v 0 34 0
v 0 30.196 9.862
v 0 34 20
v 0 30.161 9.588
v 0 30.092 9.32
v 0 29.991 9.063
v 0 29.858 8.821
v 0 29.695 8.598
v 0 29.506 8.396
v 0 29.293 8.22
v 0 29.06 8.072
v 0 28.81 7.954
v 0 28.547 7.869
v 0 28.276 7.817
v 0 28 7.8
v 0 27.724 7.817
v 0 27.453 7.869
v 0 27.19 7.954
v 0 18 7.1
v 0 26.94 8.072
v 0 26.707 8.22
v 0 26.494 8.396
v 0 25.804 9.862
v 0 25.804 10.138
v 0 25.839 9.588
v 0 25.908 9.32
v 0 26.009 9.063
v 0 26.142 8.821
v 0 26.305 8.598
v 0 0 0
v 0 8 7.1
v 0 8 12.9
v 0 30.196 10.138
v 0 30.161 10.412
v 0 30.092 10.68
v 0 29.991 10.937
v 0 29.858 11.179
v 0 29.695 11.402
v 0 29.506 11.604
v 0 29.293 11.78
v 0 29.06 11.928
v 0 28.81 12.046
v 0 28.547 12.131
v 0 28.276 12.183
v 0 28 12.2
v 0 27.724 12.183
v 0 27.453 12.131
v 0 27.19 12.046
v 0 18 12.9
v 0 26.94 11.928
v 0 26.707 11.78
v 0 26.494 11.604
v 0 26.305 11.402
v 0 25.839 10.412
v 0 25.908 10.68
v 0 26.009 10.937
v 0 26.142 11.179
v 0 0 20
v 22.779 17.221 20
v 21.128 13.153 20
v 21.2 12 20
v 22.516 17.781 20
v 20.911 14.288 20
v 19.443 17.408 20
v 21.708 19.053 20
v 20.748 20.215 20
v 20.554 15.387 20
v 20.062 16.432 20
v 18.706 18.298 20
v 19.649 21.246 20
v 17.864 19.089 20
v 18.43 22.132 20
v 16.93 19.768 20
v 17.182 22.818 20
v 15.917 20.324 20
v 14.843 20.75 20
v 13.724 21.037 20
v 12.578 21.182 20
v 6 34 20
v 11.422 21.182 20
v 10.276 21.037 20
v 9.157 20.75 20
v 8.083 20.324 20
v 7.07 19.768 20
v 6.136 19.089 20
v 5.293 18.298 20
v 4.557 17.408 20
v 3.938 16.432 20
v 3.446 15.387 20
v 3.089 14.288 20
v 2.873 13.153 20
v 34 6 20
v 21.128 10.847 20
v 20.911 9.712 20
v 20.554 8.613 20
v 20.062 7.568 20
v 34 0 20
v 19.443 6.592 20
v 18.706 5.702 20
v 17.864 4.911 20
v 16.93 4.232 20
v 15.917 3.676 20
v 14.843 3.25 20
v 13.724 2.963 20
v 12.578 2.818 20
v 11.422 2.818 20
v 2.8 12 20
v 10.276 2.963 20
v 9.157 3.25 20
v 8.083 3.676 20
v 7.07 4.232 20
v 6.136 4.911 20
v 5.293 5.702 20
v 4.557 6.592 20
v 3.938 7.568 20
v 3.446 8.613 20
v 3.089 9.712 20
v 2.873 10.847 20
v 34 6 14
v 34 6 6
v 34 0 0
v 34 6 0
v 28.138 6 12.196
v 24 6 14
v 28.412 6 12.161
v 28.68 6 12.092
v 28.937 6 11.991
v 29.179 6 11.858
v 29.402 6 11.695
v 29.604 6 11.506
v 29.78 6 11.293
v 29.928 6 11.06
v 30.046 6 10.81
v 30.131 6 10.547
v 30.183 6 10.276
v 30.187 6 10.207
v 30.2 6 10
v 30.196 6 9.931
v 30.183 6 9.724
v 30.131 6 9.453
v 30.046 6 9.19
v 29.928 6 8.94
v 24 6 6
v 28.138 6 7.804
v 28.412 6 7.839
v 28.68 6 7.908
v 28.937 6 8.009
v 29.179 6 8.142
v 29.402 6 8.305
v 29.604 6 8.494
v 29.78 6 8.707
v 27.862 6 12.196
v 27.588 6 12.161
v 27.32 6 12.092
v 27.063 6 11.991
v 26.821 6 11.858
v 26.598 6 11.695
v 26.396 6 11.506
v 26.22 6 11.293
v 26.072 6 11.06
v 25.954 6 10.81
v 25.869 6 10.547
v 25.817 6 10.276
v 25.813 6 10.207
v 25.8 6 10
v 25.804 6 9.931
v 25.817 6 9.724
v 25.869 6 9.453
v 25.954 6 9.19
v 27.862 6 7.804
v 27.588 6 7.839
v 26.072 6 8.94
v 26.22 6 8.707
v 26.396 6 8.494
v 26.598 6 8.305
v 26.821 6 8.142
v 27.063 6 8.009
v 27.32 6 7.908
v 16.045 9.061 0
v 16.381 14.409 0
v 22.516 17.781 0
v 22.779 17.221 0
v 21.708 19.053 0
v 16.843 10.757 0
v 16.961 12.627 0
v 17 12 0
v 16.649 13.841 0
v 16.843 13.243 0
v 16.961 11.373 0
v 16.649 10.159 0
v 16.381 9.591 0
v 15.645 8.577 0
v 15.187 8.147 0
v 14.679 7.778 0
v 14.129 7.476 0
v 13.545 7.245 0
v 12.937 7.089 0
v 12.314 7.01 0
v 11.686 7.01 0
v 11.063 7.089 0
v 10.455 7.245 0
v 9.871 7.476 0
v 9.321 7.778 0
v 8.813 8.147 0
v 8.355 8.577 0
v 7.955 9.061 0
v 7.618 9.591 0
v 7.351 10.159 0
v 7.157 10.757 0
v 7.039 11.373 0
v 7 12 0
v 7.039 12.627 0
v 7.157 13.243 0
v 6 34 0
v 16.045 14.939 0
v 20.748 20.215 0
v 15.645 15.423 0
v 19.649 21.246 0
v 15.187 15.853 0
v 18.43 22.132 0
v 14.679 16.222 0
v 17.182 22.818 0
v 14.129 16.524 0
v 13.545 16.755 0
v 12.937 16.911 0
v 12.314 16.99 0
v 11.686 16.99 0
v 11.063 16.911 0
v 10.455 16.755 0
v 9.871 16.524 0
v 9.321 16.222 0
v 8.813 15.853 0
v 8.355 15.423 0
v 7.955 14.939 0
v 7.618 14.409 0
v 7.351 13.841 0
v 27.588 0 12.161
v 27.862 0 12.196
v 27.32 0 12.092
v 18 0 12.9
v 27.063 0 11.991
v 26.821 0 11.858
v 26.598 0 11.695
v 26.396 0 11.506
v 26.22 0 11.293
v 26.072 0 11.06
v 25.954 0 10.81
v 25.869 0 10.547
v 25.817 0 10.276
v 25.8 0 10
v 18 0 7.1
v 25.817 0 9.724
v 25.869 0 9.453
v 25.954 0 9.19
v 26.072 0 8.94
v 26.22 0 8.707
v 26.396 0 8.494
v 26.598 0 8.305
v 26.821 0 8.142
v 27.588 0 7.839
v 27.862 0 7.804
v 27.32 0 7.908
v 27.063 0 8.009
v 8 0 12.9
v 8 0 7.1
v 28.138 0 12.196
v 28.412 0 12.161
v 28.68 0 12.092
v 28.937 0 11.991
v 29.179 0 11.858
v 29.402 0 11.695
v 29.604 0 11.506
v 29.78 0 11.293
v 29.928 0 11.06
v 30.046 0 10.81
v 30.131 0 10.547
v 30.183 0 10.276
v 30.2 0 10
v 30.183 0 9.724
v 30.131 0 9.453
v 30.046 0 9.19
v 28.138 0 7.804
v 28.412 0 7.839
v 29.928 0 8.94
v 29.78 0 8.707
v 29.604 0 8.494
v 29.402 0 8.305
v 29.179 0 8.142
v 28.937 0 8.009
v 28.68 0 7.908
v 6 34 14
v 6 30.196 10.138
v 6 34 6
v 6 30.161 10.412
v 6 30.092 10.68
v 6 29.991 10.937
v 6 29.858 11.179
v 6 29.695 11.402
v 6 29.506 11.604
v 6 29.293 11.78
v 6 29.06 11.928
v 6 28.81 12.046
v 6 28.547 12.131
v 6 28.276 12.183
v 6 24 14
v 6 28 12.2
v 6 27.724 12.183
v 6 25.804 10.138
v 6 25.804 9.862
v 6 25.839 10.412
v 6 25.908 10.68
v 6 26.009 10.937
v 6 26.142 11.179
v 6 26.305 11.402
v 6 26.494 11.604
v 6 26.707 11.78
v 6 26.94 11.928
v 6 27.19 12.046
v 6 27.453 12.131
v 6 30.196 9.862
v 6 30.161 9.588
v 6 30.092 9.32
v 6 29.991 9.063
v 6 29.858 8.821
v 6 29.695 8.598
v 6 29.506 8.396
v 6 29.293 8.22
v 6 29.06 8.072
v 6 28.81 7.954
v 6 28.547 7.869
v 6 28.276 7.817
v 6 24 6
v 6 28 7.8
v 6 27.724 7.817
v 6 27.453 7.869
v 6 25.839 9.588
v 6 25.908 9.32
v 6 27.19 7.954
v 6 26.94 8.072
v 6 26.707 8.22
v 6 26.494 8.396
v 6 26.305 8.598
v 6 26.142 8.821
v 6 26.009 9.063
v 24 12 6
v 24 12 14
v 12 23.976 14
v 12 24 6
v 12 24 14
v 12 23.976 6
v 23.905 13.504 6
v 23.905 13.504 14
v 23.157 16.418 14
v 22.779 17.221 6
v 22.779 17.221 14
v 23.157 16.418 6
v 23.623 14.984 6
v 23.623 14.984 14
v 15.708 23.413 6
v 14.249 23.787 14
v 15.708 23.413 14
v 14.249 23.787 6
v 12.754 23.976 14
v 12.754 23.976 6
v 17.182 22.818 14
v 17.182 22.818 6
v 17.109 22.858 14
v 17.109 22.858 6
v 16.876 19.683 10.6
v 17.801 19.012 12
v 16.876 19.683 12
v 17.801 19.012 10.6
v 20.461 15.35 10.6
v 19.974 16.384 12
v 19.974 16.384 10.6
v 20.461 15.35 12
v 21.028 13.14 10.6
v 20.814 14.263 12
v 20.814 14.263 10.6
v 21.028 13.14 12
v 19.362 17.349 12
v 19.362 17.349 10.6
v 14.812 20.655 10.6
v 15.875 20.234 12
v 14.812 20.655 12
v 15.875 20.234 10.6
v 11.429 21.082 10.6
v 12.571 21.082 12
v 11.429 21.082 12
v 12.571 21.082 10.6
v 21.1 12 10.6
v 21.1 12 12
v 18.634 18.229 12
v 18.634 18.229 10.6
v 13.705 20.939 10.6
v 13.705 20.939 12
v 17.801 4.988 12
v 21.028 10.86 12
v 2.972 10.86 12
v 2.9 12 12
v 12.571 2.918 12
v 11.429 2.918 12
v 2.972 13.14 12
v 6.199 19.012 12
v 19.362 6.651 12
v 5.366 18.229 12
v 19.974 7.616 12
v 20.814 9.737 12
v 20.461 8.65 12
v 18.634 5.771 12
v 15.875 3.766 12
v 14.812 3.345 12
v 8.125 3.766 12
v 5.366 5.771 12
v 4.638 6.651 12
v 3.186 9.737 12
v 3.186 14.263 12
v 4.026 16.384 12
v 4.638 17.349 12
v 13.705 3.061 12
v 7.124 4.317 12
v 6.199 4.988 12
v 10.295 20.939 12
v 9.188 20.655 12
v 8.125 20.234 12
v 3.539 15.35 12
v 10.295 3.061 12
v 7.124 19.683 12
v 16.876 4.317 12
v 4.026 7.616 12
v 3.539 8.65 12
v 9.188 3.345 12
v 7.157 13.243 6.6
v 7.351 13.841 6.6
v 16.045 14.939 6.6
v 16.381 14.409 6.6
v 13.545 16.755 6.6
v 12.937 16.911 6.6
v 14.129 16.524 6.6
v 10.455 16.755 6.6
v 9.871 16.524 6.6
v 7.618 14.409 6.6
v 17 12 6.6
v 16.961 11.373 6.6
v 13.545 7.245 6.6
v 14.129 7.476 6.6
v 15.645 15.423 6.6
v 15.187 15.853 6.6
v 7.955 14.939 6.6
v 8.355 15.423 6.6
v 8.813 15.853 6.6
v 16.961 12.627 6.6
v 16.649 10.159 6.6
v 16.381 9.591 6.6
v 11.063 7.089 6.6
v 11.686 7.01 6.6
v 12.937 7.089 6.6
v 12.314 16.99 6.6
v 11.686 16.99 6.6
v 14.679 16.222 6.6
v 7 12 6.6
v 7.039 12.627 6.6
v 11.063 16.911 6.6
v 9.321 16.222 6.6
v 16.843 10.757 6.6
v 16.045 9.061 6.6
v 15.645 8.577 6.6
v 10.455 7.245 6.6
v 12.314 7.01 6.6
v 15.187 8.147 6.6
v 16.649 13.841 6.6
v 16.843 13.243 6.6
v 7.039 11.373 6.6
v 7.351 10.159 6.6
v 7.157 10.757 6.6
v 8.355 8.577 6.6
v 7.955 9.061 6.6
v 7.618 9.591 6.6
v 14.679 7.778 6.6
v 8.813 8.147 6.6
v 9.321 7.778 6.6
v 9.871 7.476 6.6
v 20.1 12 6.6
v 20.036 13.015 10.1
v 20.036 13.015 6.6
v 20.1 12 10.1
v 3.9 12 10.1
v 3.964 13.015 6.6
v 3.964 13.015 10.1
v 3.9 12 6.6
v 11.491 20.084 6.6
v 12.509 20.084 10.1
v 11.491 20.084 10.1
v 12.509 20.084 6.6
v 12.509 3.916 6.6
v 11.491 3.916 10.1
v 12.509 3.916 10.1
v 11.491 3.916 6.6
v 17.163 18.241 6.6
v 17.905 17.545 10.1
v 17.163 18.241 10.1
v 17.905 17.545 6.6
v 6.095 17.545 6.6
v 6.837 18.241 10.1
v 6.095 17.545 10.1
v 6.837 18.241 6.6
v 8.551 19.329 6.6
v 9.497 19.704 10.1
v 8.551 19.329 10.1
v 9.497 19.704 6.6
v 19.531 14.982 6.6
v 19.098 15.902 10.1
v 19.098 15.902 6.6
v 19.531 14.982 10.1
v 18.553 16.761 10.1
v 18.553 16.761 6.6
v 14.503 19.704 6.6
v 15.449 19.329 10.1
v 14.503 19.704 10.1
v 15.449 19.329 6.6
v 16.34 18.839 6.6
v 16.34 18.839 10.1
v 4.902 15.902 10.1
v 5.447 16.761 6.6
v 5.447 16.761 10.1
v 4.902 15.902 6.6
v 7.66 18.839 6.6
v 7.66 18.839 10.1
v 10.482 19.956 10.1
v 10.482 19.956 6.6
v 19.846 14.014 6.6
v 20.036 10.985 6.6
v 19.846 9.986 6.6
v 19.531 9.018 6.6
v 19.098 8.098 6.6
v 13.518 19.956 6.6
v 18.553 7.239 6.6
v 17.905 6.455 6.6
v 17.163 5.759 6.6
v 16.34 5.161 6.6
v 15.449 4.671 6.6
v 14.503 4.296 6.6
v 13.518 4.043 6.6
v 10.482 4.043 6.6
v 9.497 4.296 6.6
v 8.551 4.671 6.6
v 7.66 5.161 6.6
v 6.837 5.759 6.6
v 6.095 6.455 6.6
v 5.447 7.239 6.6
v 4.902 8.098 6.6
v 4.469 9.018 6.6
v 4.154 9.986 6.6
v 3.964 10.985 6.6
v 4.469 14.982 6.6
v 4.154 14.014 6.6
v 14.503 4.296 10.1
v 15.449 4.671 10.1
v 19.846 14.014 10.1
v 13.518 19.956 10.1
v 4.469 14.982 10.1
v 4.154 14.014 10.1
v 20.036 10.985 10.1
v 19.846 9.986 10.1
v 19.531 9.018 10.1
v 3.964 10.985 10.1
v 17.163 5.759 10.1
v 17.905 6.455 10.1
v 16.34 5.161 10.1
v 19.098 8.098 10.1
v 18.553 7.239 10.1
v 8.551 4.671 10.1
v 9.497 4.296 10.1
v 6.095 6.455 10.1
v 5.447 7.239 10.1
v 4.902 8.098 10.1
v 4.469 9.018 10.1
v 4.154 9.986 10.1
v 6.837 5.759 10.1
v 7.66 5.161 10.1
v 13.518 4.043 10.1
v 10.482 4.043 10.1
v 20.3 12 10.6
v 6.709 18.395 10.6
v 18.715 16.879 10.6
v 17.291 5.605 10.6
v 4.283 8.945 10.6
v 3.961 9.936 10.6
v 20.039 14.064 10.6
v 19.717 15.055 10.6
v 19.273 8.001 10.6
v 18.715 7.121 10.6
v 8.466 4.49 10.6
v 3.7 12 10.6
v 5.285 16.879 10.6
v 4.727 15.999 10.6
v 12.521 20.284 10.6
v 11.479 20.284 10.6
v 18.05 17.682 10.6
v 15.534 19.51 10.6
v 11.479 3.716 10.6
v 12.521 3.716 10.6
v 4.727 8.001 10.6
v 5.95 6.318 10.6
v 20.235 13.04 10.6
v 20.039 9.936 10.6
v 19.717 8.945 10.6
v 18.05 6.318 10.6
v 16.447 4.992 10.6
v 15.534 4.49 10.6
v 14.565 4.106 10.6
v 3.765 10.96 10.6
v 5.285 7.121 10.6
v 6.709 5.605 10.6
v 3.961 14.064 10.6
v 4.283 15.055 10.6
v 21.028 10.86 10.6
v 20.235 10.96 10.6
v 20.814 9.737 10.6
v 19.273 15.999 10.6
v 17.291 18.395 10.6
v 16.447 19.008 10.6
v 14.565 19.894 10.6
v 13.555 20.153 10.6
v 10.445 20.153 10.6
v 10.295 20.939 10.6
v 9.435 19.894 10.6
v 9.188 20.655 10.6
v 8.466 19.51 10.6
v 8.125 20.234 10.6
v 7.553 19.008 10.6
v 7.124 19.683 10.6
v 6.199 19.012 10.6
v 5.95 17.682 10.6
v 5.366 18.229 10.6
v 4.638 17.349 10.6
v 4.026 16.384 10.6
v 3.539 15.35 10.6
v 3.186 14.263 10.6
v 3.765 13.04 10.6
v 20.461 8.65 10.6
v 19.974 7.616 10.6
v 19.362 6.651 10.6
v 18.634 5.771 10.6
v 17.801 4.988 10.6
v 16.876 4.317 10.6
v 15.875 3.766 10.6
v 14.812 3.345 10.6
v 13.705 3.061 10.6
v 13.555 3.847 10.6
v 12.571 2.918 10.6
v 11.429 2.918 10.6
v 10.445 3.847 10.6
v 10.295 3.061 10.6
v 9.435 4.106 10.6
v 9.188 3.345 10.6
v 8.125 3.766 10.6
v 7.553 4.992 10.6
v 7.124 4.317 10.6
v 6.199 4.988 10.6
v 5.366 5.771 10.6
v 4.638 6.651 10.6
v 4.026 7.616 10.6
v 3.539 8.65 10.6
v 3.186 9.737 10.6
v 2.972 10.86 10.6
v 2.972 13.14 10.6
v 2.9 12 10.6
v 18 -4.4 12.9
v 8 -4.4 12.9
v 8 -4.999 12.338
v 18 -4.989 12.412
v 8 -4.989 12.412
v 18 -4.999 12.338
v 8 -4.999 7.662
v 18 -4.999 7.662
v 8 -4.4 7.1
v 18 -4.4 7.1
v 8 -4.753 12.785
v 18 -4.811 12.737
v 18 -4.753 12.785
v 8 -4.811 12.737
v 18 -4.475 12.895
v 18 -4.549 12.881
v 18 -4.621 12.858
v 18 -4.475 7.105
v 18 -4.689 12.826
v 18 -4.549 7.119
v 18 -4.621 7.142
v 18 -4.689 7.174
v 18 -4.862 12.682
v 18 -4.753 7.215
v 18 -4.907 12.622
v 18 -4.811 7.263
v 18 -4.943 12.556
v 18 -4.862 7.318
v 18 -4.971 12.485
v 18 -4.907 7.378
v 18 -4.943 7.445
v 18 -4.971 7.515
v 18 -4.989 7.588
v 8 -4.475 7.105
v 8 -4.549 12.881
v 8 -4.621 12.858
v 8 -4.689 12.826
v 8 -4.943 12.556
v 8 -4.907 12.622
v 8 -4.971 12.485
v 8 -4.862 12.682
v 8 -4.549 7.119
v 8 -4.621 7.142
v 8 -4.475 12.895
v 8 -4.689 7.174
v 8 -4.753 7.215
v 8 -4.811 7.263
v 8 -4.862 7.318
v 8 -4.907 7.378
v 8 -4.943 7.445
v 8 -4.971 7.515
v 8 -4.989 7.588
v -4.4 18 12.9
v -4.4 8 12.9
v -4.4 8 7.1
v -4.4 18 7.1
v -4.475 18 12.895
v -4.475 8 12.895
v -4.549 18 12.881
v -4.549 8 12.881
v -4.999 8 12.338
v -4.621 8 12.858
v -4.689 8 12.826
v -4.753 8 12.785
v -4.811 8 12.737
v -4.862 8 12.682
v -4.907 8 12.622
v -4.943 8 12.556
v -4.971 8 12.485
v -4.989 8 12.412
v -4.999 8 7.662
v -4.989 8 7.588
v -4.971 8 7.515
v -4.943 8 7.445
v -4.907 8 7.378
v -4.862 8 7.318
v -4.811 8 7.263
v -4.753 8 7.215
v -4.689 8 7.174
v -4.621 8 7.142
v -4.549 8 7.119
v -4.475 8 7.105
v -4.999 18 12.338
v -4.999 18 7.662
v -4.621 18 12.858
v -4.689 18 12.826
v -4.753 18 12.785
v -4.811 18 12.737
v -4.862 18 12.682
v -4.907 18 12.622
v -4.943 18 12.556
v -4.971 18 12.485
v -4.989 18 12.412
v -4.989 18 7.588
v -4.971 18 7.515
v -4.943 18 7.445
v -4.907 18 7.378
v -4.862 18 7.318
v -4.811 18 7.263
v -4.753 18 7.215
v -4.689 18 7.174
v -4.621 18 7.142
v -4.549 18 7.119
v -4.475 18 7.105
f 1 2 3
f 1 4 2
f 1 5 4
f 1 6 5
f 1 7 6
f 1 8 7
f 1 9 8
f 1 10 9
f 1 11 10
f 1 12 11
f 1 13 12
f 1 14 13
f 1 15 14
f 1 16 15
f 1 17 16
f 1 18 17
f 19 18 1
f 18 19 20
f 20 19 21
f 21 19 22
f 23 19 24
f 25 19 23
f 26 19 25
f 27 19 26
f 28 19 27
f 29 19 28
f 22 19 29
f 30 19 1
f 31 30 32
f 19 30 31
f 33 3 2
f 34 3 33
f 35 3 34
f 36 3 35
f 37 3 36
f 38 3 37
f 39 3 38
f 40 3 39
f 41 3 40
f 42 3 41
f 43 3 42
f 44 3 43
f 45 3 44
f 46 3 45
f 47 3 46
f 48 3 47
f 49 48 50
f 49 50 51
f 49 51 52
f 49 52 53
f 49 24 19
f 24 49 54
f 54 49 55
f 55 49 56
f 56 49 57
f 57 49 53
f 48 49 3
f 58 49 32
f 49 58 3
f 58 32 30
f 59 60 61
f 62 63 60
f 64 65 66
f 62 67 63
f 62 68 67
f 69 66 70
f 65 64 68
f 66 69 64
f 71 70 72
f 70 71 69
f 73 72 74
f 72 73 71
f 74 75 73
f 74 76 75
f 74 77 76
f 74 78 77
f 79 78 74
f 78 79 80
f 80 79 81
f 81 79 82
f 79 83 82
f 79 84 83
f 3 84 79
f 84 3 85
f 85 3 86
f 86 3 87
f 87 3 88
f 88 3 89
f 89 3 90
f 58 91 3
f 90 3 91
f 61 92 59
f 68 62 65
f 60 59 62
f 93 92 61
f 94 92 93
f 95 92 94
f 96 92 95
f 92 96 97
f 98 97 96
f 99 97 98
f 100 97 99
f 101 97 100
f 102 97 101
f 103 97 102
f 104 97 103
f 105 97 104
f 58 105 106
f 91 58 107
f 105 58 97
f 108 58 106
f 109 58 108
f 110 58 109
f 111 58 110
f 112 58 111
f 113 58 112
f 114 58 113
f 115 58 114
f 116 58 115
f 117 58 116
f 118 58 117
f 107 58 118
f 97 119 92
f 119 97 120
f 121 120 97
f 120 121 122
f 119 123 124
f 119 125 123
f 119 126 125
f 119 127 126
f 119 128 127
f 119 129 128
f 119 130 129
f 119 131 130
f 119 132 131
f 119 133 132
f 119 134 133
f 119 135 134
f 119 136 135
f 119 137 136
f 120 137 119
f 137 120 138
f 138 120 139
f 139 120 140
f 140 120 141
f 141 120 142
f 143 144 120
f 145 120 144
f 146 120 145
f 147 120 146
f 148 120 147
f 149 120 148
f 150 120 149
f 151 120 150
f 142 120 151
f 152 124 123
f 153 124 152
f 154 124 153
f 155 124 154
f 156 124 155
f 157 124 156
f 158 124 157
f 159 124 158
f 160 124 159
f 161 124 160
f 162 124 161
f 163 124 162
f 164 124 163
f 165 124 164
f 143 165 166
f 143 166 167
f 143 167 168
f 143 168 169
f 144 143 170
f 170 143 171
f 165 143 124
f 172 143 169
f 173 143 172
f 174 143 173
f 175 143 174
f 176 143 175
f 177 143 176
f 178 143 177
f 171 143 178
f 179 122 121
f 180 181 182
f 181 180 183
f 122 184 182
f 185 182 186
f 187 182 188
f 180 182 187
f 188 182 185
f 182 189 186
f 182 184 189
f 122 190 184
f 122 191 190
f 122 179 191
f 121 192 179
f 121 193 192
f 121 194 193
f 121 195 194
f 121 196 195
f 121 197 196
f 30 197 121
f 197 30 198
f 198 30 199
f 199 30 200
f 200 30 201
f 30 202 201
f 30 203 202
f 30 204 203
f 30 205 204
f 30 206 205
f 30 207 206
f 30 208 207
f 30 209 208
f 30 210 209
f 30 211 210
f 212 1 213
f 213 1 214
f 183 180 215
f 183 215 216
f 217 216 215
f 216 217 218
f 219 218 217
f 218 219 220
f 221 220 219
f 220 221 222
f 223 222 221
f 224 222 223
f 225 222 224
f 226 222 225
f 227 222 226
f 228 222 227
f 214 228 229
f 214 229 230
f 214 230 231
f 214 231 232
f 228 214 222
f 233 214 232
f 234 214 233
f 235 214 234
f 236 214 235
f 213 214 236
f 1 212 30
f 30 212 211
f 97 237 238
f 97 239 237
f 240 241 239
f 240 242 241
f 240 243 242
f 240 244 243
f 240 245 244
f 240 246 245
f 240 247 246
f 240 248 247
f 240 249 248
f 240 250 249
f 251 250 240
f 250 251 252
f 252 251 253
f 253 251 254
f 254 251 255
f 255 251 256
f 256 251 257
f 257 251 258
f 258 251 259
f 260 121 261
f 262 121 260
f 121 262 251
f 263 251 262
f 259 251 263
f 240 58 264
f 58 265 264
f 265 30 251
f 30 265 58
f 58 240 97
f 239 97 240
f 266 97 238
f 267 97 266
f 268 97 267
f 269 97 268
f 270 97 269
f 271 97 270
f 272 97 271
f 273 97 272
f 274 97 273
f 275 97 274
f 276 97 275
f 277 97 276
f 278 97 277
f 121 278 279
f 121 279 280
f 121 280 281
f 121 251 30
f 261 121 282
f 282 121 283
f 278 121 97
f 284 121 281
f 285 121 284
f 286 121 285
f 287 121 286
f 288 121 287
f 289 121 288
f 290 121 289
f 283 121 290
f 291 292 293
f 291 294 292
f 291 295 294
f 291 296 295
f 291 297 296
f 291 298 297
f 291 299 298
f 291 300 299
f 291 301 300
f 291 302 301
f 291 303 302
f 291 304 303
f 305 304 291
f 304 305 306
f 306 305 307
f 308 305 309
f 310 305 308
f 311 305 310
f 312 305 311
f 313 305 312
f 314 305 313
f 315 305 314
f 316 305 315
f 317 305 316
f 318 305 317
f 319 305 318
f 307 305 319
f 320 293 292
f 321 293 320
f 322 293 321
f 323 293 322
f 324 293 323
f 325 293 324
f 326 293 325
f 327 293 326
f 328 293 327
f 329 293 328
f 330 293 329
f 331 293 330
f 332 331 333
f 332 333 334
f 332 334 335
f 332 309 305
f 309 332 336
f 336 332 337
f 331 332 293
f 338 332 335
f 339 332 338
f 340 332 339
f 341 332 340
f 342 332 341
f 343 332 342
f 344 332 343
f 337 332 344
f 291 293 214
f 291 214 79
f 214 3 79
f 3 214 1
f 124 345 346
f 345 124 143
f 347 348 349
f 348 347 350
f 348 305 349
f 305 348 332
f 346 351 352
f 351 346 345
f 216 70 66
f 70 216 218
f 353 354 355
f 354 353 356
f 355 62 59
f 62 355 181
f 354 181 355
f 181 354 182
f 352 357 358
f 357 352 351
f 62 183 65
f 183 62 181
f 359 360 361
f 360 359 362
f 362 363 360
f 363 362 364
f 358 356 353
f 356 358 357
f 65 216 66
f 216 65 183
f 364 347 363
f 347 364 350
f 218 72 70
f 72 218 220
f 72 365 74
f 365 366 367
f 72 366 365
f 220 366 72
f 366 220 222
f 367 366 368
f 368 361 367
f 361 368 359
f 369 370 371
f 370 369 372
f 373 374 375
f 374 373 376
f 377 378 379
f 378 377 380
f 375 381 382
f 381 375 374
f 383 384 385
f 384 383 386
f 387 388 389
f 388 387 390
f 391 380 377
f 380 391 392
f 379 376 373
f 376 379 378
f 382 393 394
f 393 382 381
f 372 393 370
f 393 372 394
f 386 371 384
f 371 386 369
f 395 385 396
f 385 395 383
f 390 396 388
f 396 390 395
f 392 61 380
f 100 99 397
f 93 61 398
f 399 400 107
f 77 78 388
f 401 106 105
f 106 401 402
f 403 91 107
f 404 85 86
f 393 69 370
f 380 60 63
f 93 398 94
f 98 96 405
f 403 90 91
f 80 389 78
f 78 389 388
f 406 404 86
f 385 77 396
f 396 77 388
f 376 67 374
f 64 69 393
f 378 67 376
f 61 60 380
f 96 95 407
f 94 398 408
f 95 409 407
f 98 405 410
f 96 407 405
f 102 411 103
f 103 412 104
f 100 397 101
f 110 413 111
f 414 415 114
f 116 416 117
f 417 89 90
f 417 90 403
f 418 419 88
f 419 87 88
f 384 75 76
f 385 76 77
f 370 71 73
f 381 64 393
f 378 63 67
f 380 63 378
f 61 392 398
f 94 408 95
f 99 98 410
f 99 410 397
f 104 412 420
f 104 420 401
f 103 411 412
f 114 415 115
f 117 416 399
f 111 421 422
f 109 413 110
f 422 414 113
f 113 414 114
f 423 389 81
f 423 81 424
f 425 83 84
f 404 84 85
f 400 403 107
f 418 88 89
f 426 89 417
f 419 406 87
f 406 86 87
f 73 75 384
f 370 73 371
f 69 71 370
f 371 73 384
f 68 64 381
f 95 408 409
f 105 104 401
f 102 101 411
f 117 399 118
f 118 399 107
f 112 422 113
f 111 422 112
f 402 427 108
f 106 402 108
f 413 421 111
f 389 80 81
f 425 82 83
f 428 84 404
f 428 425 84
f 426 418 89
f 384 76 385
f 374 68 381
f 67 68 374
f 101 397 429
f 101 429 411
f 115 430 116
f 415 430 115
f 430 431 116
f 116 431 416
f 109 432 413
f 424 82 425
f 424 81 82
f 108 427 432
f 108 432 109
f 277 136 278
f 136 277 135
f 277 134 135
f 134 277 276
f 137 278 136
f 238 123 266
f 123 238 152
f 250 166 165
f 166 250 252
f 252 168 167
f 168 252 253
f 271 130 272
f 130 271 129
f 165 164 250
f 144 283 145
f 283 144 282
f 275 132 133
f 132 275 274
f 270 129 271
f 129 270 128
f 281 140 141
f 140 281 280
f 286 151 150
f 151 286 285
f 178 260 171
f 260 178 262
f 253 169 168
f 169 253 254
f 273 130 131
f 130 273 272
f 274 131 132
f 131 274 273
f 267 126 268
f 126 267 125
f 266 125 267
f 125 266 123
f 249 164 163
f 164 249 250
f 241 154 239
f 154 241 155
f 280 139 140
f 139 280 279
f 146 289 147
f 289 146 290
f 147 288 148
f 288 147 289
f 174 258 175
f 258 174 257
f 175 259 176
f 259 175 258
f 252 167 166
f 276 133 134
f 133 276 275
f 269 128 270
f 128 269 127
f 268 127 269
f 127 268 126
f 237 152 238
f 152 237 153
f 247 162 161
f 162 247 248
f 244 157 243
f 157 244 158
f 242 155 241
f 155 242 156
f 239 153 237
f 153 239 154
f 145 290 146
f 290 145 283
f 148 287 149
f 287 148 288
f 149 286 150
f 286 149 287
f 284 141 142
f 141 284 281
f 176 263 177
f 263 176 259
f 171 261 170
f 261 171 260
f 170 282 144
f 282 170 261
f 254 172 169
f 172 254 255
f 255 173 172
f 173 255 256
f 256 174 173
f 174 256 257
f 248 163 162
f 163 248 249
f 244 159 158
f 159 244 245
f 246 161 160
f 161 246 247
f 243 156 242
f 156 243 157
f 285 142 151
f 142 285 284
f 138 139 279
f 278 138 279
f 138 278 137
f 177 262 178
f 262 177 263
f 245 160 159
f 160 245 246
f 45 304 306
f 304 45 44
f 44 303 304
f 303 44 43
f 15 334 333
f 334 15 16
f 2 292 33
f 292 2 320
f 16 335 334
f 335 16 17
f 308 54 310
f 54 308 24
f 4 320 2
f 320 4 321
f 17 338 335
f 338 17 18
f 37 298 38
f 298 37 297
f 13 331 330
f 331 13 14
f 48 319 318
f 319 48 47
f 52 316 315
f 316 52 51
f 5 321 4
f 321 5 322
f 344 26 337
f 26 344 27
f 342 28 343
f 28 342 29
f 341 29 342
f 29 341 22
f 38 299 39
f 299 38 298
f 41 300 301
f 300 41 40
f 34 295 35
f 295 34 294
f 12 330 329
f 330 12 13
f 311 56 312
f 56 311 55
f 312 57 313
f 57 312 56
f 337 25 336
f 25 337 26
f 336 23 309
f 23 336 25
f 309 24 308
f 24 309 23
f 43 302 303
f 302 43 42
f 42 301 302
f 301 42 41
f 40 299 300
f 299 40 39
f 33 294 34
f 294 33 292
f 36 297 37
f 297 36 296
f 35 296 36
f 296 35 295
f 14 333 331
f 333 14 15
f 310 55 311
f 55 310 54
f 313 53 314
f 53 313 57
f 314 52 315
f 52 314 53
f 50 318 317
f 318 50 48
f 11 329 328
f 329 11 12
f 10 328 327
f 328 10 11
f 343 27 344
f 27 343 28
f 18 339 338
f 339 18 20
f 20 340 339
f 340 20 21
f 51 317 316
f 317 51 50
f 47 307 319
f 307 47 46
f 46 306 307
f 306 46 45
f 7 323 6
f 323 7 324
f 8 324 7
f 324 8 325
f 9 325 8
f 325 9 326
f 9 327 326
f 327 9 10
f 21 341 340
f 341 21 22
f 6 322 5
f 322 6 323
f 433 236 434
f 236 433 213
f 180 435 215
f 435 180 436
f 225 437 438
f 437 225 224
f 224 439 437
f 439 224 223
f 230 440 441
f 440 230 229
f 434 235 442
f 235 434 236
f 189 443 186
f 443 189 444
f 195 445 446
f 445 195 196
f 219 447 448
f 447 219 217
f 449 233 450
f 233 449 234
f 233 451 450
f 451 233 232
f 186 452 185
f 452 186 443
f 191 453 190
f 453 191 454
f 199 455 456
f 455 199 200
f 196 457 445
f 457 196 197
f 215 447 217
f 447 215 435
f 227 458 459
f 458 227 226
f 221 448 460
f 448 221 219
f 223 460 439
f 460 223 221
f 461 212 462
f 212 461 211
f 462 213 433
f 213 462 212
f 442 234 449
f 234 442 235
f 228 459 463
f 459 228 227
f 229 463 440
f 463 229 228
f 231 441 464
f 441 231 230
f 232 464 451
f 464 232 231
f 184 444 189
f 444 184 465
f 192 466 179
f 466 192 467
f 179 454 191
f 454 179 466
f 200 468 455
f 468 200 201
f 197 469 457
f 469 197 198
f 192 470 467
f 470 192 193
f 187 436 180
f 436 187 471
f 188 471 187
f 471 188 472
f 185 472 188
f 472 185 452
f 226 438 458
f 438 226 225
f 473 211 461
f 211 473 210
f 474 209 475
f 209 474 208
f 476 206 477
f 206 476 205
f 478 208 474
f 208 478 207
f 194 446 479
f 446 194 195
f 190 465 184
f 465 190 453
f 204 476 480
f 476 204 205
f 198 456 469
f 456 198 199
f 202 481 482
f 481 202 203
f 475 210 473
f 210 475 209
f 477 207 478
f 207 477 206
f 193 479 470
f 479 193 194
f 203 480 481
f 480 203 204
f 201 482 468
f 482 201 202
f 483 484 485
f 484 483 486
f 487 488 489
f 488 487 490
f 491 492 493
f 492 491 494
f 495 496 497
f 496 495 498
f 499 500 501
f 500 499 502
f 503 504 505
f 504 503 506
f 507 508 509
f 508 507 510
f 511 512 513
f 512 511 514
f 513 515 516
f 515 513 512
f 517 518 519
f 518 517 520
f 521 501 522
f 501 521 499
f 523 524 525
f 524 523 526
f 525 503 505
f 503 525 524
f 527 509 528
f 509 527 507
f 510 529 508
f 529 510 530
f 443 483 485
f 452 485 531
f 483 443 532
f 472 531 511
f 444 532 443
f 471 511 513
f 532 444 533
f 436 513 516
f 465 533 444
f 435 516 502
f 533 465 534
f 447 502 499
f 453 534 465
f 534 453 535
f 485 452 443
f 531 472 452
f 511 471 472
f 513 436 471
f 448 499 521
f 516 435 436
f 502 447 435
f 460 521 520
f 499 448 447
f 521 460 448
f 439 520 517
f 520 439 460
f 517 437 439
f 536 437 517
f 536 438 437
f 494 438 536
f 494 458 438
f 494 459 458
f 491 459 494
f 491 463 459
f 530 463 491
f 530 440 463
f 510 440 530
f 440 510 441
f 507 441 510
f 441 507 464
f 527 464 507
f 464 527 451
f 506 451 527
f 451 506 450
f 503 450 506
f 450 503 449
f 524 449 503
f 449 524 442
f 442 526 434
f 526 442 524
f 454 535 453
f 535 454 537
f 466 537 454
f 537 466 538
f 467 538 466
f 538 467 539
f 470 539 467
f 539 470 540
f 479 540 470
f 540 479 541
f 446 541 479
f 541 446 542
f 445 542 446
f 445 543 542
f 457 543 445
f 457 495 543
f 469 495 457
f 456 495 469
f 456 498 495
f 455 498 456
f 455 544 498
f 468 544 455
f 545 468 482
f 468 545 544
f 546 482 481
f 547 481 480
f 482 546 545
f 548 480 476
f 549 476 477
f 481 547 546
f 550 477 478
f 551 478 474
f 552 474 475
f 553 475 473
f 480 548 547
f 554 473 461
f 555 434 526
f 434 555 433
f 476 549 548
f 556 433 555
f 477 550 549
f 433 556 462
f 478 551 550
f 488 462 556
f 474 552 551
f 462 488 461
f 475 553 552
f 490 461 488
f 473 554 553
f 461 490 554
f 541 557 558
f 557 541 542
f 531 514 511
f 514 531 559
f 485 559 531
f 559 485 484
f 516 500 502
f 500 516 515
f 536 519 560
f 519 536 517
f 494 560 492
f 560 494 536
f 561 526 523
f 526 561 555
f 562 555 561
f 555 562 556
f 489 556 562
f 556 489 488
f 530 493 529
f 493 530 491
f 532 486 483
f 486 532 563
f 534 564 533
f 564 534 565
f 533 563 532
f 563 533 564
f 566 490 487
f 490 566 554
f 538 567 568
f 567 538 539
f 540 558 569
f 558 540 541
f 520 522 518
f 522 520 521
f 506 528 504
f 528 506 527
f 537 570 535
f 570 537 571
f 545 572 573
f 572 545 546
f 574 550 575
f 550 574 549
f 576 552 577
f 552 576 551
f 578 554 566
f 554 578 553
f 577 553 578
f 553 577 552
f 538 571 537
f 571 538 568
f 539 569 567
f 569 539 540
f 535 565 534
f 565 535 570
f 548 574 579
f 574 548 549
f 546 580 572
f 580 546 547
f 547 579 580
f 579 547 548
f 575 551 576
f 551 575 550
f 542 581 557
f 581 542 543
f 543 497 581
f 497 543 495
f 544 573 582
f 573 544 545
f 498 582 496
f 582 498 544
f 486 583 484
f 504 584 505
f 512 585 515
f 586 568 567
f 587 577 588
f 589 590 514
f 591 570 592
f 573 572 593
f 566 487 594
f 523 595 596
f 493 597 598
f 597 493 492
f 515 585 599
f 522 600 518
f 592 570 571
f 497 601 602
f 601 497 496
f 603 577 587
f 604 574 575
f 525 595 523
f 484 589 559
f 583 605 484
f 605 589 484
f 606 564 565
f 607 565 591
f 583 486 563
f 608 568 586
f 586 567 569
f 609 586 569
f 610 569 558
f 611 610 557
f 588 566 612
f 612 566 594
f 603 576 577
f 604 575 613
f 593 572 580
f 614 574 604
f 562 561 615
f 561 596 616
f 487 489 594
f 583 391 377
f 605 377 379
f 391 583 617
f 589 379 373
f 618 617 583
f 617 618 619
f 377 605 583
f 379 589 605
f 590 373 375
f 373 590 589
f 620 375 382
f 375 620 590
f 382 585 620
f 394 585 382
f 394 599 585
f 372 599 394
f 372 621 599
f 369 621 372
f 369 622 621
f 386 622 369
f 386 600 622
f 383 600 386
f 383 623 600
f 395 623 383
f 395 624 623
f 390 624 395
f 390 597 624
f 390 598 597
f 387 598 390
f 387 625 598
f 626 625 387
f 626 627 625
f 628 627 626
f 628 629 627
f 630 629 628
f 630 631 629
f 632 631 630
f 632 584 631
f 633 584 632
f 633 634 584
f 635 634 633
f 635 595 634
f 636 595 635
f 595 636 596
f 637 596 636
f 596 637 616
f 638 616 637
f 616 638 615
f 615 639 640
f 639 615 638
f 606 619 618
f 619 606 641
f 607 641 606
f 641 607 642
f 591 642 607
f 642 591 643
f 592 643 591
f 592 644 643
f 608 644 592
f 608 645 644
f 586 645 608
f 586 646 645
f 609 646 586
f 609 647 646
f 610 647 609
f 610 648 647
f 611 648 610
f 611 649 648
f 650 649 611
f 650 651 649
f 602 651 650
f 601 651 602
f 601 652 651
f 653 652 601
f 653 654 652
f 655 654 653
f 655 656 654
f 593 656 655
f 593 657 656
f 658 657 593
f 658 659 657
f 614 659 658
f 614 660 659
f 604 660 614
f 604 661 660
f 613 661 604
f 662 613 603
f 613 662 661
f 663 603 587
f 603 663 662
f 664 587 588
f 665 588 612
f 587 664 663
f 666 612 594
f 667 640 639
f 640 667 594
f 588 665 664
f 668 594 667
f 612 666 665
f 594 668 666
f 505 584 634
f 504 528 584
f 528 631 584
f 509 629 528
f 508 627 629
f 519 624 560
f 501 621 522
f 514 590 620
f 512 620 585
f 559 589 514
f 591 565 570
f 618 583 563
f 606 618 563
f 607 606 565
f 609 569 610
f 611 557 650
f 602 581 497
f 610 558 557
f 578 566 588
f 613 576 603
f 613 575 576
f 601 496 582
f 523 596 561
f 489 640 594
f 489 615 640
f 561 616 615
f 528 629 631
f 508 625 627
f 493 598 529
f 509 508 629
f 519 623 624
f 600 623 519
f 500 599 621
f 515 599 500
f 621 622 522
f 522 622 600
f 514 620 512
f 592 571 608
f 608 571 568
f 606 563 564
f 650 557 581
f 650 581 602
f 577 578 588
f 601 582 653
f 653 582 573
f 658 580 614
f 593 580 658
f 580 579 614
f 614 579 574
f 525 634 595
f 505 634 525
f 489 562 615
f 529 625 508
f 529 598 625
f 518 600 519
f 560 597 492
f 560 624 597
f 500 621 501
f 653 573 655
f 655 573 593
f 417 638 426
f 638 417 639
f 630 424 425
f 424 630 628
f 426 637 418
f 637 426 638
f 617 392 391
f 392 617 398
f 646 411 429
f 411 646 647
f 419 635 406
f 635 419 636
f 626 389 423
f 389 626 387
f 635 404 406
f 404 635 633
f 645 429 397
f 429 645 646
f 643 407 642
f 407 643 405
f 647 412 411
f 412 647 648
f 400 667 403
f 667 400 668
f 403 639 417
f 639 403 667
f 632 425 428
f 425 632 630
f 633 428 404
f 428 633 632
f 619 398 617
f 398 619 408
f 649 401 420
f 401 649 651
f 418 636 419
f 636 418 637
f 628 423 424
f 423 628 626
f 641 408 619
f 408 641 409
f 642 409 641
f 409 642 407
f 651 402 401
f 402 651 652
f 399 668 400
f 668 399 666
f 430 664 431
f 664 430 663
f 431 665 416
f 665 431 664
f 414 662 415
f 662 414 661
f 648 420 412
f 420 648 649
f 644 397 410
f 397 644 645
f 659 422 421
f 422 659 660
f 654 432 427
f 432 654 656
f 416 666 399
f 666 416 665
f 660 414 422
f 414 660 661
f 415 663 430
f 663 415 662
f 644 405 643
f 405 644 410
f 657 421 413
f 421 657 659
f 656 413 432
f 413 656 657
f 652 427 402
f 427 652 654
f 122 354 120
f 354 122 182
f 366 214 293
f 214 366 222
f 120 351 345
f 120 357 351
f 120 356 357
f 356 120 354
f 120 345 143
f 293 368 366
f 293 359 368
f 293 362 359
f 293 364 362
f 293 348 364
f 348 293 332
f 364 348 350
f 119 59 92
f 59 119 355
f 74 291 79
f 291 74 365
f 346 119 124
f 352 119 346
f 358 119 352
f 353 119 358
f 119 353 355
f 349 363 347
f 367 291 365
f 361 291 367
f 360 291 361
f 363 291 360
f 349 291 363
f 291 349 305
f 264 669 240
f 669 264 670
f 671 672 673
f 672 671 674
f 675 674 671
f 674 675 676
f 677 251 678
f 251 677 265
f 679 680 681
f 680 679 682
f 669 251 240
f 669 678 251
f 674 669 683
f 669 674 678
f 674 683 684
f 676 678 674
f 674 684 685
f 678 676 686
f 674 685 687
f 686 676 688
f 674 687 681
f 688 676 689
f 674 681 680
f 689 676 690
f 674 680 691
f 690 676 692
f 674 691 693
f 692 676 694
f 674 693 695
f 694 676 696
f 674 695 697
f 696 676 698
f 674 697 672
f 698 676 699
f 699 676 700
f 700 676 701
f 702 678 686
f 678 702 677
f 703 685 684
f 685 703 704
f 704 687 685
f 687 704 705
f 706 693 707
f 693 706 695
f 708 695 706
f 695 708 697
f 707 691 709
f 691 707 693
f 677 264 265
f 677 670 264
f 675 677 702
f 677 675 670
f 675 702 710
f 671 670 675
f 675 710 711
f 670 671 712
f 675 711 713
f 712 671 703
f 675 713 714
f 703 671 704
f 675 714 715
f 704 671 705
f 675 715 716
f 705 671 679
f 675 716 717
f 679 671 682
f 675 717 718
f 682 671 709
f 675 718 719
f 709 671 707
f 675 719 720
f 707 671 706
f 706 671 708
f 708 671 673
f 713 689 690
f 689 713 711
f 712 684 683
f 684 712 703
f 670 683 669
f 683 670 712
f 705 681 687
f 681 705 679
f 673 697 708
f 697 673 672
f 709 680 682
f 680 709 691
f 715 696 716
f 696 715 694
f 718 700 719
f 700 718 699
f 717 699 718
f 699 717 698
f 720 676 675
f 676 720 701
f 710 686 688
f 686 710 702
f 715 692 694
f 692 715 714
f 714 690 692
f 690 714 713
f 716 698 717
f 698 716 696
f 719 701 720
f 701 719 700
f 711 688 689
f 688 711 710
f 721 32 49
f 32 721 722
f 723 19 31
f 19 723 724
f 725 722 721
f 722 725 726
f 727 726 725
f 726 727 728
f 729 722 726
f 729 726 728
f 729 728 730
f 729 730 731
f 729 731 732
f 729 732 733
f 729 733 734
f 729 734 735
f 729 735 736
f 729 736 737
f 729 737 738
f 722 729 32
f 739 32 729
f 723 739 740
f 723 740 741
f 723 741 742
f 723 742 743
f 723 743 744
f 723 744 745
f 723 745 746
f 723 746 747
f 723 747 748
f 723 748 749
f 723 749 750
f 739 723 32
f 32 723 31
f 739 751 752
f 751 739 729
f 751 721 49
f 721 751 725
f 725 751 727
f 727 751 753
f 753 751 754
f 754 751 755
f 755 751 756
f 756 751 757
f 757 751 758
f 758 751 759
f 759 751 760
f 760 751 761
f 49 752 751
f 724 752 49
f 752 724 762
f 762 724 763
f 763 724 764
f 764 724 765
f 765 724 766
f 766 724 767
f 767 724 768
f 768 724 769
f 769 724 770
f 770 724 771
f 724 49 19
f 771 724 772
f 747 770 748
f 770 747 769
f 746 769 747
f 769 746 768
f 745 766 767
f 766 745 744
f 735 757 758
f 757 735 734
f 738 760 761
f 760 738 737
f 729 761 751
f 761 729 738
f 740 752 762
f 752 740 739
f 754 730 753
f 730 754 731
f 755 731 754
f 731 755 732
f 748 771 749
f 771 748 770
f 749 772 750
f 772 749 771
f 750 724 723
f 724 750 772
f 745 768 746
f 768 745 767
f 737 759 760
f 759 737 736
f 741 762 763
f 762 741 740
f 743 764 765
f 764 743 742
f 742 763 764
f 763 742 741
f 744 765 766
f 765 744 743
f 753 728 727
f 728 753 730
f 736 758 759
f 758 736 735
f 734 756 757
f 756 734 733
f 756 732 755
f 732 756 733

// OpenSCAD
// file: ../lib/nutsnbolts/data-access.scad
// Norm Nuts and Bolts - a OpenSCAD library
// Copyright (C) 2012  Johannes Kneer

// This program is free software: you can redistribute it and/or modify
// it under the terms of the GNU General Public License as published by
// the Free Software Foundation, either version 3 of the License, or
// (at your option) any later version.

// This program is distributed in the hope that it will be useful,
// but WITHOUT ANY WARRANTY; without even the implied warranty of
// MERCHANTABILITY or FITNESS FOR A PARTICULAR PURPOSE.  See the
// GNU General Public License for more details.

// You should have received a copy of the GNU General Public License
// along with this program.  If not, see <http://www.gnu.org/licenses/>.


// DATABASE ACCESS FUNCTIONS AND CONSTANTS



// == CONSTANTS ==

// screw table access keys
_NB_S_DESC            = 0;
_NB_S_FAMKEY			    = 1;
_NB_S_LENGTH          = 2;
_NB_S_NOTHREAD_LENGTH = 3;

_NB_F_DESC			      = 0;
_NB_F_OUTER_DIA       = 1;
_NB_F_INNER_DIA       = 2;
_NB_F_LEAD            = 3;
_NB_F_KEY             = 4;
_NB_F_KEY_DEPTH       = 5;
_NB_F_HEAD_HEIGHT     = 6;
_NB_F_HEAD_DIA        = 7;
_NB_F_NUT_KEY         = 8;
_NB_F_NUT_HEIGHT      = 9;
_NB_F_PITCH_FINE      = 10;
_NB_F_PITCH_MEDIUM    = 11;
_NB_F_PITCH_COARSE    = 12;


// == FUNCTIONS ==

// _get_screw("descriptor")   with descriptor = M8x25
//   find the line for a general object in the data matrix

function _get_screw(n) = data_screw[search([n], data_screw)[0]];
function _get_screw_fam(n) = data_screw_fam[search([_get_screw(n)[_NB_S_FAMKEY]], data_screw_fam)[0]];

function _get_fam(n) = data_screw_fam[search([n], data_screw_fam)[0]];


// _get_XXXXX("descriptor") functions
// find a single property in the database

function _get_desc(n)        = _get_screw(n)[_NB_S_DESC];
function _get_famkey(n)         = _get_screw(n)[_NB_S_FAMKEY];
function _get_length(n)      = _get_screw(n)[_NB_S_LENGTH];
function _get_nt_length(n)   = _get_screw(n)[_NB_S_NOTHREAD_LENGTH];

function _get_outer_dia(n)   = _get_screw_fam(n)[_NB_F_OUTER_DIA];
function _get_inner_dia(n)   = _get_screw_fam(n)[_NB_F_INNER_DIA];
function _get_lead(n)        = _get_screw_fam(n)[_NB_F_LEAD];
function _get_head_height(n) = _get_screw_fam(n)[_NB_F_HEAD_HEIGHT];
function _get_head_dia(n)    = _get_screw_fam(n)[_NB_F_HEAD_DIA];
function _get_nut_key(n)     = _get_screw_fam(n)[_NB_F_NUT_KEY];
function _get_nut_height(n)  = _get_screw_fam(n)[_NB_F_NUT_HEIGHT];
function _get_fine_pitch(n)  = _get_screw_fam(n)[_NB_F_PITCH_FINE];
function _get_medium_pitch(n)  = _get_screw_fam(n)[_NB_F_PITCH_MEDIUM];
function _get_coarse_pitch(n)  = _get_screw_fam(n)[_NB_F_PITCH_COARSE];
// file: ../globals.scad
// Global variables

$fn = 50;
clearance = 0.4; // Nozzle width
// file: f688zz.scad
include <../globals.scad>;

module f688zz_mount()
{
    difference(){
        cylinder(d=24,h=12);
        cylinder(d=10,h=12);
        translate([0,0,7-clearance])cylinder(d=16+clearance/2,h=12);
        translate([0,0,10.3-clearance/2])cylinder(d1=16+clearance/2,d2=16.4+clearance/2,h=0.5);
        translate([0,0,10.8-clearance/2])cylinder(d=18+clearance/2,h=12);
    }
} 
// main file
include <f688zz.scad>
include <../lib/nutsnbolts/cyl_head_bolt.scad>;

module gantry_x_front_left_right()
{
    difference(){
        union(){
            cube([34,6,20]);
            cube([6,34,20]);
            cube([24,12,20]);
            cube([12,24,20]);
            translate([12,12,0])cylinder(d=24,h=20);
        }
        translate([12,12,0])cylinder(d=18+clearance/2,h=12);
        translate([12,12,12])cylinder(d1=18+clearance/2,d2=18+clearance,h=8);
        translate([28,0,10])rotate([90,0,0])hole_through("M4",l=8, cld=clearance);
        translate([0,28,10])rotate([0,-90,0])hole_through("M4",l=8, cld=clearance);
    }
    translate([12,12,0])f688zz_mount();
    
    intersection(){
        difference(){
            union(){
                translate([6,-22,0])rotate([0,0,45])cube([28*sqrt(2),28*sqrt(2),6]);
                translate([6,-22,14])rotate([0,0,45])cube([28*sqrt(2),28*sqrt(2),6]);
            }
            translate([12,12,0])cylinder(d=24,h=20);
        }
        cube([34,34,20]);
    }
    
    translate([18,-5,7.1])rotate([0,-90,0])translate([0.6,0.6,0])minkowski(){
        cube([4.6,4.4,9]);
        cylinder(d=1.2,h=1);
    }
    translate([0.6,18,7.1])rotate([0,-90,90])translate([0.6,0.6,0])minkowski(){
        cube([4.6,4.4,9]);
        cylinder(d=1.2,h=1);
    }
}

gantry_x_front_left_right();
